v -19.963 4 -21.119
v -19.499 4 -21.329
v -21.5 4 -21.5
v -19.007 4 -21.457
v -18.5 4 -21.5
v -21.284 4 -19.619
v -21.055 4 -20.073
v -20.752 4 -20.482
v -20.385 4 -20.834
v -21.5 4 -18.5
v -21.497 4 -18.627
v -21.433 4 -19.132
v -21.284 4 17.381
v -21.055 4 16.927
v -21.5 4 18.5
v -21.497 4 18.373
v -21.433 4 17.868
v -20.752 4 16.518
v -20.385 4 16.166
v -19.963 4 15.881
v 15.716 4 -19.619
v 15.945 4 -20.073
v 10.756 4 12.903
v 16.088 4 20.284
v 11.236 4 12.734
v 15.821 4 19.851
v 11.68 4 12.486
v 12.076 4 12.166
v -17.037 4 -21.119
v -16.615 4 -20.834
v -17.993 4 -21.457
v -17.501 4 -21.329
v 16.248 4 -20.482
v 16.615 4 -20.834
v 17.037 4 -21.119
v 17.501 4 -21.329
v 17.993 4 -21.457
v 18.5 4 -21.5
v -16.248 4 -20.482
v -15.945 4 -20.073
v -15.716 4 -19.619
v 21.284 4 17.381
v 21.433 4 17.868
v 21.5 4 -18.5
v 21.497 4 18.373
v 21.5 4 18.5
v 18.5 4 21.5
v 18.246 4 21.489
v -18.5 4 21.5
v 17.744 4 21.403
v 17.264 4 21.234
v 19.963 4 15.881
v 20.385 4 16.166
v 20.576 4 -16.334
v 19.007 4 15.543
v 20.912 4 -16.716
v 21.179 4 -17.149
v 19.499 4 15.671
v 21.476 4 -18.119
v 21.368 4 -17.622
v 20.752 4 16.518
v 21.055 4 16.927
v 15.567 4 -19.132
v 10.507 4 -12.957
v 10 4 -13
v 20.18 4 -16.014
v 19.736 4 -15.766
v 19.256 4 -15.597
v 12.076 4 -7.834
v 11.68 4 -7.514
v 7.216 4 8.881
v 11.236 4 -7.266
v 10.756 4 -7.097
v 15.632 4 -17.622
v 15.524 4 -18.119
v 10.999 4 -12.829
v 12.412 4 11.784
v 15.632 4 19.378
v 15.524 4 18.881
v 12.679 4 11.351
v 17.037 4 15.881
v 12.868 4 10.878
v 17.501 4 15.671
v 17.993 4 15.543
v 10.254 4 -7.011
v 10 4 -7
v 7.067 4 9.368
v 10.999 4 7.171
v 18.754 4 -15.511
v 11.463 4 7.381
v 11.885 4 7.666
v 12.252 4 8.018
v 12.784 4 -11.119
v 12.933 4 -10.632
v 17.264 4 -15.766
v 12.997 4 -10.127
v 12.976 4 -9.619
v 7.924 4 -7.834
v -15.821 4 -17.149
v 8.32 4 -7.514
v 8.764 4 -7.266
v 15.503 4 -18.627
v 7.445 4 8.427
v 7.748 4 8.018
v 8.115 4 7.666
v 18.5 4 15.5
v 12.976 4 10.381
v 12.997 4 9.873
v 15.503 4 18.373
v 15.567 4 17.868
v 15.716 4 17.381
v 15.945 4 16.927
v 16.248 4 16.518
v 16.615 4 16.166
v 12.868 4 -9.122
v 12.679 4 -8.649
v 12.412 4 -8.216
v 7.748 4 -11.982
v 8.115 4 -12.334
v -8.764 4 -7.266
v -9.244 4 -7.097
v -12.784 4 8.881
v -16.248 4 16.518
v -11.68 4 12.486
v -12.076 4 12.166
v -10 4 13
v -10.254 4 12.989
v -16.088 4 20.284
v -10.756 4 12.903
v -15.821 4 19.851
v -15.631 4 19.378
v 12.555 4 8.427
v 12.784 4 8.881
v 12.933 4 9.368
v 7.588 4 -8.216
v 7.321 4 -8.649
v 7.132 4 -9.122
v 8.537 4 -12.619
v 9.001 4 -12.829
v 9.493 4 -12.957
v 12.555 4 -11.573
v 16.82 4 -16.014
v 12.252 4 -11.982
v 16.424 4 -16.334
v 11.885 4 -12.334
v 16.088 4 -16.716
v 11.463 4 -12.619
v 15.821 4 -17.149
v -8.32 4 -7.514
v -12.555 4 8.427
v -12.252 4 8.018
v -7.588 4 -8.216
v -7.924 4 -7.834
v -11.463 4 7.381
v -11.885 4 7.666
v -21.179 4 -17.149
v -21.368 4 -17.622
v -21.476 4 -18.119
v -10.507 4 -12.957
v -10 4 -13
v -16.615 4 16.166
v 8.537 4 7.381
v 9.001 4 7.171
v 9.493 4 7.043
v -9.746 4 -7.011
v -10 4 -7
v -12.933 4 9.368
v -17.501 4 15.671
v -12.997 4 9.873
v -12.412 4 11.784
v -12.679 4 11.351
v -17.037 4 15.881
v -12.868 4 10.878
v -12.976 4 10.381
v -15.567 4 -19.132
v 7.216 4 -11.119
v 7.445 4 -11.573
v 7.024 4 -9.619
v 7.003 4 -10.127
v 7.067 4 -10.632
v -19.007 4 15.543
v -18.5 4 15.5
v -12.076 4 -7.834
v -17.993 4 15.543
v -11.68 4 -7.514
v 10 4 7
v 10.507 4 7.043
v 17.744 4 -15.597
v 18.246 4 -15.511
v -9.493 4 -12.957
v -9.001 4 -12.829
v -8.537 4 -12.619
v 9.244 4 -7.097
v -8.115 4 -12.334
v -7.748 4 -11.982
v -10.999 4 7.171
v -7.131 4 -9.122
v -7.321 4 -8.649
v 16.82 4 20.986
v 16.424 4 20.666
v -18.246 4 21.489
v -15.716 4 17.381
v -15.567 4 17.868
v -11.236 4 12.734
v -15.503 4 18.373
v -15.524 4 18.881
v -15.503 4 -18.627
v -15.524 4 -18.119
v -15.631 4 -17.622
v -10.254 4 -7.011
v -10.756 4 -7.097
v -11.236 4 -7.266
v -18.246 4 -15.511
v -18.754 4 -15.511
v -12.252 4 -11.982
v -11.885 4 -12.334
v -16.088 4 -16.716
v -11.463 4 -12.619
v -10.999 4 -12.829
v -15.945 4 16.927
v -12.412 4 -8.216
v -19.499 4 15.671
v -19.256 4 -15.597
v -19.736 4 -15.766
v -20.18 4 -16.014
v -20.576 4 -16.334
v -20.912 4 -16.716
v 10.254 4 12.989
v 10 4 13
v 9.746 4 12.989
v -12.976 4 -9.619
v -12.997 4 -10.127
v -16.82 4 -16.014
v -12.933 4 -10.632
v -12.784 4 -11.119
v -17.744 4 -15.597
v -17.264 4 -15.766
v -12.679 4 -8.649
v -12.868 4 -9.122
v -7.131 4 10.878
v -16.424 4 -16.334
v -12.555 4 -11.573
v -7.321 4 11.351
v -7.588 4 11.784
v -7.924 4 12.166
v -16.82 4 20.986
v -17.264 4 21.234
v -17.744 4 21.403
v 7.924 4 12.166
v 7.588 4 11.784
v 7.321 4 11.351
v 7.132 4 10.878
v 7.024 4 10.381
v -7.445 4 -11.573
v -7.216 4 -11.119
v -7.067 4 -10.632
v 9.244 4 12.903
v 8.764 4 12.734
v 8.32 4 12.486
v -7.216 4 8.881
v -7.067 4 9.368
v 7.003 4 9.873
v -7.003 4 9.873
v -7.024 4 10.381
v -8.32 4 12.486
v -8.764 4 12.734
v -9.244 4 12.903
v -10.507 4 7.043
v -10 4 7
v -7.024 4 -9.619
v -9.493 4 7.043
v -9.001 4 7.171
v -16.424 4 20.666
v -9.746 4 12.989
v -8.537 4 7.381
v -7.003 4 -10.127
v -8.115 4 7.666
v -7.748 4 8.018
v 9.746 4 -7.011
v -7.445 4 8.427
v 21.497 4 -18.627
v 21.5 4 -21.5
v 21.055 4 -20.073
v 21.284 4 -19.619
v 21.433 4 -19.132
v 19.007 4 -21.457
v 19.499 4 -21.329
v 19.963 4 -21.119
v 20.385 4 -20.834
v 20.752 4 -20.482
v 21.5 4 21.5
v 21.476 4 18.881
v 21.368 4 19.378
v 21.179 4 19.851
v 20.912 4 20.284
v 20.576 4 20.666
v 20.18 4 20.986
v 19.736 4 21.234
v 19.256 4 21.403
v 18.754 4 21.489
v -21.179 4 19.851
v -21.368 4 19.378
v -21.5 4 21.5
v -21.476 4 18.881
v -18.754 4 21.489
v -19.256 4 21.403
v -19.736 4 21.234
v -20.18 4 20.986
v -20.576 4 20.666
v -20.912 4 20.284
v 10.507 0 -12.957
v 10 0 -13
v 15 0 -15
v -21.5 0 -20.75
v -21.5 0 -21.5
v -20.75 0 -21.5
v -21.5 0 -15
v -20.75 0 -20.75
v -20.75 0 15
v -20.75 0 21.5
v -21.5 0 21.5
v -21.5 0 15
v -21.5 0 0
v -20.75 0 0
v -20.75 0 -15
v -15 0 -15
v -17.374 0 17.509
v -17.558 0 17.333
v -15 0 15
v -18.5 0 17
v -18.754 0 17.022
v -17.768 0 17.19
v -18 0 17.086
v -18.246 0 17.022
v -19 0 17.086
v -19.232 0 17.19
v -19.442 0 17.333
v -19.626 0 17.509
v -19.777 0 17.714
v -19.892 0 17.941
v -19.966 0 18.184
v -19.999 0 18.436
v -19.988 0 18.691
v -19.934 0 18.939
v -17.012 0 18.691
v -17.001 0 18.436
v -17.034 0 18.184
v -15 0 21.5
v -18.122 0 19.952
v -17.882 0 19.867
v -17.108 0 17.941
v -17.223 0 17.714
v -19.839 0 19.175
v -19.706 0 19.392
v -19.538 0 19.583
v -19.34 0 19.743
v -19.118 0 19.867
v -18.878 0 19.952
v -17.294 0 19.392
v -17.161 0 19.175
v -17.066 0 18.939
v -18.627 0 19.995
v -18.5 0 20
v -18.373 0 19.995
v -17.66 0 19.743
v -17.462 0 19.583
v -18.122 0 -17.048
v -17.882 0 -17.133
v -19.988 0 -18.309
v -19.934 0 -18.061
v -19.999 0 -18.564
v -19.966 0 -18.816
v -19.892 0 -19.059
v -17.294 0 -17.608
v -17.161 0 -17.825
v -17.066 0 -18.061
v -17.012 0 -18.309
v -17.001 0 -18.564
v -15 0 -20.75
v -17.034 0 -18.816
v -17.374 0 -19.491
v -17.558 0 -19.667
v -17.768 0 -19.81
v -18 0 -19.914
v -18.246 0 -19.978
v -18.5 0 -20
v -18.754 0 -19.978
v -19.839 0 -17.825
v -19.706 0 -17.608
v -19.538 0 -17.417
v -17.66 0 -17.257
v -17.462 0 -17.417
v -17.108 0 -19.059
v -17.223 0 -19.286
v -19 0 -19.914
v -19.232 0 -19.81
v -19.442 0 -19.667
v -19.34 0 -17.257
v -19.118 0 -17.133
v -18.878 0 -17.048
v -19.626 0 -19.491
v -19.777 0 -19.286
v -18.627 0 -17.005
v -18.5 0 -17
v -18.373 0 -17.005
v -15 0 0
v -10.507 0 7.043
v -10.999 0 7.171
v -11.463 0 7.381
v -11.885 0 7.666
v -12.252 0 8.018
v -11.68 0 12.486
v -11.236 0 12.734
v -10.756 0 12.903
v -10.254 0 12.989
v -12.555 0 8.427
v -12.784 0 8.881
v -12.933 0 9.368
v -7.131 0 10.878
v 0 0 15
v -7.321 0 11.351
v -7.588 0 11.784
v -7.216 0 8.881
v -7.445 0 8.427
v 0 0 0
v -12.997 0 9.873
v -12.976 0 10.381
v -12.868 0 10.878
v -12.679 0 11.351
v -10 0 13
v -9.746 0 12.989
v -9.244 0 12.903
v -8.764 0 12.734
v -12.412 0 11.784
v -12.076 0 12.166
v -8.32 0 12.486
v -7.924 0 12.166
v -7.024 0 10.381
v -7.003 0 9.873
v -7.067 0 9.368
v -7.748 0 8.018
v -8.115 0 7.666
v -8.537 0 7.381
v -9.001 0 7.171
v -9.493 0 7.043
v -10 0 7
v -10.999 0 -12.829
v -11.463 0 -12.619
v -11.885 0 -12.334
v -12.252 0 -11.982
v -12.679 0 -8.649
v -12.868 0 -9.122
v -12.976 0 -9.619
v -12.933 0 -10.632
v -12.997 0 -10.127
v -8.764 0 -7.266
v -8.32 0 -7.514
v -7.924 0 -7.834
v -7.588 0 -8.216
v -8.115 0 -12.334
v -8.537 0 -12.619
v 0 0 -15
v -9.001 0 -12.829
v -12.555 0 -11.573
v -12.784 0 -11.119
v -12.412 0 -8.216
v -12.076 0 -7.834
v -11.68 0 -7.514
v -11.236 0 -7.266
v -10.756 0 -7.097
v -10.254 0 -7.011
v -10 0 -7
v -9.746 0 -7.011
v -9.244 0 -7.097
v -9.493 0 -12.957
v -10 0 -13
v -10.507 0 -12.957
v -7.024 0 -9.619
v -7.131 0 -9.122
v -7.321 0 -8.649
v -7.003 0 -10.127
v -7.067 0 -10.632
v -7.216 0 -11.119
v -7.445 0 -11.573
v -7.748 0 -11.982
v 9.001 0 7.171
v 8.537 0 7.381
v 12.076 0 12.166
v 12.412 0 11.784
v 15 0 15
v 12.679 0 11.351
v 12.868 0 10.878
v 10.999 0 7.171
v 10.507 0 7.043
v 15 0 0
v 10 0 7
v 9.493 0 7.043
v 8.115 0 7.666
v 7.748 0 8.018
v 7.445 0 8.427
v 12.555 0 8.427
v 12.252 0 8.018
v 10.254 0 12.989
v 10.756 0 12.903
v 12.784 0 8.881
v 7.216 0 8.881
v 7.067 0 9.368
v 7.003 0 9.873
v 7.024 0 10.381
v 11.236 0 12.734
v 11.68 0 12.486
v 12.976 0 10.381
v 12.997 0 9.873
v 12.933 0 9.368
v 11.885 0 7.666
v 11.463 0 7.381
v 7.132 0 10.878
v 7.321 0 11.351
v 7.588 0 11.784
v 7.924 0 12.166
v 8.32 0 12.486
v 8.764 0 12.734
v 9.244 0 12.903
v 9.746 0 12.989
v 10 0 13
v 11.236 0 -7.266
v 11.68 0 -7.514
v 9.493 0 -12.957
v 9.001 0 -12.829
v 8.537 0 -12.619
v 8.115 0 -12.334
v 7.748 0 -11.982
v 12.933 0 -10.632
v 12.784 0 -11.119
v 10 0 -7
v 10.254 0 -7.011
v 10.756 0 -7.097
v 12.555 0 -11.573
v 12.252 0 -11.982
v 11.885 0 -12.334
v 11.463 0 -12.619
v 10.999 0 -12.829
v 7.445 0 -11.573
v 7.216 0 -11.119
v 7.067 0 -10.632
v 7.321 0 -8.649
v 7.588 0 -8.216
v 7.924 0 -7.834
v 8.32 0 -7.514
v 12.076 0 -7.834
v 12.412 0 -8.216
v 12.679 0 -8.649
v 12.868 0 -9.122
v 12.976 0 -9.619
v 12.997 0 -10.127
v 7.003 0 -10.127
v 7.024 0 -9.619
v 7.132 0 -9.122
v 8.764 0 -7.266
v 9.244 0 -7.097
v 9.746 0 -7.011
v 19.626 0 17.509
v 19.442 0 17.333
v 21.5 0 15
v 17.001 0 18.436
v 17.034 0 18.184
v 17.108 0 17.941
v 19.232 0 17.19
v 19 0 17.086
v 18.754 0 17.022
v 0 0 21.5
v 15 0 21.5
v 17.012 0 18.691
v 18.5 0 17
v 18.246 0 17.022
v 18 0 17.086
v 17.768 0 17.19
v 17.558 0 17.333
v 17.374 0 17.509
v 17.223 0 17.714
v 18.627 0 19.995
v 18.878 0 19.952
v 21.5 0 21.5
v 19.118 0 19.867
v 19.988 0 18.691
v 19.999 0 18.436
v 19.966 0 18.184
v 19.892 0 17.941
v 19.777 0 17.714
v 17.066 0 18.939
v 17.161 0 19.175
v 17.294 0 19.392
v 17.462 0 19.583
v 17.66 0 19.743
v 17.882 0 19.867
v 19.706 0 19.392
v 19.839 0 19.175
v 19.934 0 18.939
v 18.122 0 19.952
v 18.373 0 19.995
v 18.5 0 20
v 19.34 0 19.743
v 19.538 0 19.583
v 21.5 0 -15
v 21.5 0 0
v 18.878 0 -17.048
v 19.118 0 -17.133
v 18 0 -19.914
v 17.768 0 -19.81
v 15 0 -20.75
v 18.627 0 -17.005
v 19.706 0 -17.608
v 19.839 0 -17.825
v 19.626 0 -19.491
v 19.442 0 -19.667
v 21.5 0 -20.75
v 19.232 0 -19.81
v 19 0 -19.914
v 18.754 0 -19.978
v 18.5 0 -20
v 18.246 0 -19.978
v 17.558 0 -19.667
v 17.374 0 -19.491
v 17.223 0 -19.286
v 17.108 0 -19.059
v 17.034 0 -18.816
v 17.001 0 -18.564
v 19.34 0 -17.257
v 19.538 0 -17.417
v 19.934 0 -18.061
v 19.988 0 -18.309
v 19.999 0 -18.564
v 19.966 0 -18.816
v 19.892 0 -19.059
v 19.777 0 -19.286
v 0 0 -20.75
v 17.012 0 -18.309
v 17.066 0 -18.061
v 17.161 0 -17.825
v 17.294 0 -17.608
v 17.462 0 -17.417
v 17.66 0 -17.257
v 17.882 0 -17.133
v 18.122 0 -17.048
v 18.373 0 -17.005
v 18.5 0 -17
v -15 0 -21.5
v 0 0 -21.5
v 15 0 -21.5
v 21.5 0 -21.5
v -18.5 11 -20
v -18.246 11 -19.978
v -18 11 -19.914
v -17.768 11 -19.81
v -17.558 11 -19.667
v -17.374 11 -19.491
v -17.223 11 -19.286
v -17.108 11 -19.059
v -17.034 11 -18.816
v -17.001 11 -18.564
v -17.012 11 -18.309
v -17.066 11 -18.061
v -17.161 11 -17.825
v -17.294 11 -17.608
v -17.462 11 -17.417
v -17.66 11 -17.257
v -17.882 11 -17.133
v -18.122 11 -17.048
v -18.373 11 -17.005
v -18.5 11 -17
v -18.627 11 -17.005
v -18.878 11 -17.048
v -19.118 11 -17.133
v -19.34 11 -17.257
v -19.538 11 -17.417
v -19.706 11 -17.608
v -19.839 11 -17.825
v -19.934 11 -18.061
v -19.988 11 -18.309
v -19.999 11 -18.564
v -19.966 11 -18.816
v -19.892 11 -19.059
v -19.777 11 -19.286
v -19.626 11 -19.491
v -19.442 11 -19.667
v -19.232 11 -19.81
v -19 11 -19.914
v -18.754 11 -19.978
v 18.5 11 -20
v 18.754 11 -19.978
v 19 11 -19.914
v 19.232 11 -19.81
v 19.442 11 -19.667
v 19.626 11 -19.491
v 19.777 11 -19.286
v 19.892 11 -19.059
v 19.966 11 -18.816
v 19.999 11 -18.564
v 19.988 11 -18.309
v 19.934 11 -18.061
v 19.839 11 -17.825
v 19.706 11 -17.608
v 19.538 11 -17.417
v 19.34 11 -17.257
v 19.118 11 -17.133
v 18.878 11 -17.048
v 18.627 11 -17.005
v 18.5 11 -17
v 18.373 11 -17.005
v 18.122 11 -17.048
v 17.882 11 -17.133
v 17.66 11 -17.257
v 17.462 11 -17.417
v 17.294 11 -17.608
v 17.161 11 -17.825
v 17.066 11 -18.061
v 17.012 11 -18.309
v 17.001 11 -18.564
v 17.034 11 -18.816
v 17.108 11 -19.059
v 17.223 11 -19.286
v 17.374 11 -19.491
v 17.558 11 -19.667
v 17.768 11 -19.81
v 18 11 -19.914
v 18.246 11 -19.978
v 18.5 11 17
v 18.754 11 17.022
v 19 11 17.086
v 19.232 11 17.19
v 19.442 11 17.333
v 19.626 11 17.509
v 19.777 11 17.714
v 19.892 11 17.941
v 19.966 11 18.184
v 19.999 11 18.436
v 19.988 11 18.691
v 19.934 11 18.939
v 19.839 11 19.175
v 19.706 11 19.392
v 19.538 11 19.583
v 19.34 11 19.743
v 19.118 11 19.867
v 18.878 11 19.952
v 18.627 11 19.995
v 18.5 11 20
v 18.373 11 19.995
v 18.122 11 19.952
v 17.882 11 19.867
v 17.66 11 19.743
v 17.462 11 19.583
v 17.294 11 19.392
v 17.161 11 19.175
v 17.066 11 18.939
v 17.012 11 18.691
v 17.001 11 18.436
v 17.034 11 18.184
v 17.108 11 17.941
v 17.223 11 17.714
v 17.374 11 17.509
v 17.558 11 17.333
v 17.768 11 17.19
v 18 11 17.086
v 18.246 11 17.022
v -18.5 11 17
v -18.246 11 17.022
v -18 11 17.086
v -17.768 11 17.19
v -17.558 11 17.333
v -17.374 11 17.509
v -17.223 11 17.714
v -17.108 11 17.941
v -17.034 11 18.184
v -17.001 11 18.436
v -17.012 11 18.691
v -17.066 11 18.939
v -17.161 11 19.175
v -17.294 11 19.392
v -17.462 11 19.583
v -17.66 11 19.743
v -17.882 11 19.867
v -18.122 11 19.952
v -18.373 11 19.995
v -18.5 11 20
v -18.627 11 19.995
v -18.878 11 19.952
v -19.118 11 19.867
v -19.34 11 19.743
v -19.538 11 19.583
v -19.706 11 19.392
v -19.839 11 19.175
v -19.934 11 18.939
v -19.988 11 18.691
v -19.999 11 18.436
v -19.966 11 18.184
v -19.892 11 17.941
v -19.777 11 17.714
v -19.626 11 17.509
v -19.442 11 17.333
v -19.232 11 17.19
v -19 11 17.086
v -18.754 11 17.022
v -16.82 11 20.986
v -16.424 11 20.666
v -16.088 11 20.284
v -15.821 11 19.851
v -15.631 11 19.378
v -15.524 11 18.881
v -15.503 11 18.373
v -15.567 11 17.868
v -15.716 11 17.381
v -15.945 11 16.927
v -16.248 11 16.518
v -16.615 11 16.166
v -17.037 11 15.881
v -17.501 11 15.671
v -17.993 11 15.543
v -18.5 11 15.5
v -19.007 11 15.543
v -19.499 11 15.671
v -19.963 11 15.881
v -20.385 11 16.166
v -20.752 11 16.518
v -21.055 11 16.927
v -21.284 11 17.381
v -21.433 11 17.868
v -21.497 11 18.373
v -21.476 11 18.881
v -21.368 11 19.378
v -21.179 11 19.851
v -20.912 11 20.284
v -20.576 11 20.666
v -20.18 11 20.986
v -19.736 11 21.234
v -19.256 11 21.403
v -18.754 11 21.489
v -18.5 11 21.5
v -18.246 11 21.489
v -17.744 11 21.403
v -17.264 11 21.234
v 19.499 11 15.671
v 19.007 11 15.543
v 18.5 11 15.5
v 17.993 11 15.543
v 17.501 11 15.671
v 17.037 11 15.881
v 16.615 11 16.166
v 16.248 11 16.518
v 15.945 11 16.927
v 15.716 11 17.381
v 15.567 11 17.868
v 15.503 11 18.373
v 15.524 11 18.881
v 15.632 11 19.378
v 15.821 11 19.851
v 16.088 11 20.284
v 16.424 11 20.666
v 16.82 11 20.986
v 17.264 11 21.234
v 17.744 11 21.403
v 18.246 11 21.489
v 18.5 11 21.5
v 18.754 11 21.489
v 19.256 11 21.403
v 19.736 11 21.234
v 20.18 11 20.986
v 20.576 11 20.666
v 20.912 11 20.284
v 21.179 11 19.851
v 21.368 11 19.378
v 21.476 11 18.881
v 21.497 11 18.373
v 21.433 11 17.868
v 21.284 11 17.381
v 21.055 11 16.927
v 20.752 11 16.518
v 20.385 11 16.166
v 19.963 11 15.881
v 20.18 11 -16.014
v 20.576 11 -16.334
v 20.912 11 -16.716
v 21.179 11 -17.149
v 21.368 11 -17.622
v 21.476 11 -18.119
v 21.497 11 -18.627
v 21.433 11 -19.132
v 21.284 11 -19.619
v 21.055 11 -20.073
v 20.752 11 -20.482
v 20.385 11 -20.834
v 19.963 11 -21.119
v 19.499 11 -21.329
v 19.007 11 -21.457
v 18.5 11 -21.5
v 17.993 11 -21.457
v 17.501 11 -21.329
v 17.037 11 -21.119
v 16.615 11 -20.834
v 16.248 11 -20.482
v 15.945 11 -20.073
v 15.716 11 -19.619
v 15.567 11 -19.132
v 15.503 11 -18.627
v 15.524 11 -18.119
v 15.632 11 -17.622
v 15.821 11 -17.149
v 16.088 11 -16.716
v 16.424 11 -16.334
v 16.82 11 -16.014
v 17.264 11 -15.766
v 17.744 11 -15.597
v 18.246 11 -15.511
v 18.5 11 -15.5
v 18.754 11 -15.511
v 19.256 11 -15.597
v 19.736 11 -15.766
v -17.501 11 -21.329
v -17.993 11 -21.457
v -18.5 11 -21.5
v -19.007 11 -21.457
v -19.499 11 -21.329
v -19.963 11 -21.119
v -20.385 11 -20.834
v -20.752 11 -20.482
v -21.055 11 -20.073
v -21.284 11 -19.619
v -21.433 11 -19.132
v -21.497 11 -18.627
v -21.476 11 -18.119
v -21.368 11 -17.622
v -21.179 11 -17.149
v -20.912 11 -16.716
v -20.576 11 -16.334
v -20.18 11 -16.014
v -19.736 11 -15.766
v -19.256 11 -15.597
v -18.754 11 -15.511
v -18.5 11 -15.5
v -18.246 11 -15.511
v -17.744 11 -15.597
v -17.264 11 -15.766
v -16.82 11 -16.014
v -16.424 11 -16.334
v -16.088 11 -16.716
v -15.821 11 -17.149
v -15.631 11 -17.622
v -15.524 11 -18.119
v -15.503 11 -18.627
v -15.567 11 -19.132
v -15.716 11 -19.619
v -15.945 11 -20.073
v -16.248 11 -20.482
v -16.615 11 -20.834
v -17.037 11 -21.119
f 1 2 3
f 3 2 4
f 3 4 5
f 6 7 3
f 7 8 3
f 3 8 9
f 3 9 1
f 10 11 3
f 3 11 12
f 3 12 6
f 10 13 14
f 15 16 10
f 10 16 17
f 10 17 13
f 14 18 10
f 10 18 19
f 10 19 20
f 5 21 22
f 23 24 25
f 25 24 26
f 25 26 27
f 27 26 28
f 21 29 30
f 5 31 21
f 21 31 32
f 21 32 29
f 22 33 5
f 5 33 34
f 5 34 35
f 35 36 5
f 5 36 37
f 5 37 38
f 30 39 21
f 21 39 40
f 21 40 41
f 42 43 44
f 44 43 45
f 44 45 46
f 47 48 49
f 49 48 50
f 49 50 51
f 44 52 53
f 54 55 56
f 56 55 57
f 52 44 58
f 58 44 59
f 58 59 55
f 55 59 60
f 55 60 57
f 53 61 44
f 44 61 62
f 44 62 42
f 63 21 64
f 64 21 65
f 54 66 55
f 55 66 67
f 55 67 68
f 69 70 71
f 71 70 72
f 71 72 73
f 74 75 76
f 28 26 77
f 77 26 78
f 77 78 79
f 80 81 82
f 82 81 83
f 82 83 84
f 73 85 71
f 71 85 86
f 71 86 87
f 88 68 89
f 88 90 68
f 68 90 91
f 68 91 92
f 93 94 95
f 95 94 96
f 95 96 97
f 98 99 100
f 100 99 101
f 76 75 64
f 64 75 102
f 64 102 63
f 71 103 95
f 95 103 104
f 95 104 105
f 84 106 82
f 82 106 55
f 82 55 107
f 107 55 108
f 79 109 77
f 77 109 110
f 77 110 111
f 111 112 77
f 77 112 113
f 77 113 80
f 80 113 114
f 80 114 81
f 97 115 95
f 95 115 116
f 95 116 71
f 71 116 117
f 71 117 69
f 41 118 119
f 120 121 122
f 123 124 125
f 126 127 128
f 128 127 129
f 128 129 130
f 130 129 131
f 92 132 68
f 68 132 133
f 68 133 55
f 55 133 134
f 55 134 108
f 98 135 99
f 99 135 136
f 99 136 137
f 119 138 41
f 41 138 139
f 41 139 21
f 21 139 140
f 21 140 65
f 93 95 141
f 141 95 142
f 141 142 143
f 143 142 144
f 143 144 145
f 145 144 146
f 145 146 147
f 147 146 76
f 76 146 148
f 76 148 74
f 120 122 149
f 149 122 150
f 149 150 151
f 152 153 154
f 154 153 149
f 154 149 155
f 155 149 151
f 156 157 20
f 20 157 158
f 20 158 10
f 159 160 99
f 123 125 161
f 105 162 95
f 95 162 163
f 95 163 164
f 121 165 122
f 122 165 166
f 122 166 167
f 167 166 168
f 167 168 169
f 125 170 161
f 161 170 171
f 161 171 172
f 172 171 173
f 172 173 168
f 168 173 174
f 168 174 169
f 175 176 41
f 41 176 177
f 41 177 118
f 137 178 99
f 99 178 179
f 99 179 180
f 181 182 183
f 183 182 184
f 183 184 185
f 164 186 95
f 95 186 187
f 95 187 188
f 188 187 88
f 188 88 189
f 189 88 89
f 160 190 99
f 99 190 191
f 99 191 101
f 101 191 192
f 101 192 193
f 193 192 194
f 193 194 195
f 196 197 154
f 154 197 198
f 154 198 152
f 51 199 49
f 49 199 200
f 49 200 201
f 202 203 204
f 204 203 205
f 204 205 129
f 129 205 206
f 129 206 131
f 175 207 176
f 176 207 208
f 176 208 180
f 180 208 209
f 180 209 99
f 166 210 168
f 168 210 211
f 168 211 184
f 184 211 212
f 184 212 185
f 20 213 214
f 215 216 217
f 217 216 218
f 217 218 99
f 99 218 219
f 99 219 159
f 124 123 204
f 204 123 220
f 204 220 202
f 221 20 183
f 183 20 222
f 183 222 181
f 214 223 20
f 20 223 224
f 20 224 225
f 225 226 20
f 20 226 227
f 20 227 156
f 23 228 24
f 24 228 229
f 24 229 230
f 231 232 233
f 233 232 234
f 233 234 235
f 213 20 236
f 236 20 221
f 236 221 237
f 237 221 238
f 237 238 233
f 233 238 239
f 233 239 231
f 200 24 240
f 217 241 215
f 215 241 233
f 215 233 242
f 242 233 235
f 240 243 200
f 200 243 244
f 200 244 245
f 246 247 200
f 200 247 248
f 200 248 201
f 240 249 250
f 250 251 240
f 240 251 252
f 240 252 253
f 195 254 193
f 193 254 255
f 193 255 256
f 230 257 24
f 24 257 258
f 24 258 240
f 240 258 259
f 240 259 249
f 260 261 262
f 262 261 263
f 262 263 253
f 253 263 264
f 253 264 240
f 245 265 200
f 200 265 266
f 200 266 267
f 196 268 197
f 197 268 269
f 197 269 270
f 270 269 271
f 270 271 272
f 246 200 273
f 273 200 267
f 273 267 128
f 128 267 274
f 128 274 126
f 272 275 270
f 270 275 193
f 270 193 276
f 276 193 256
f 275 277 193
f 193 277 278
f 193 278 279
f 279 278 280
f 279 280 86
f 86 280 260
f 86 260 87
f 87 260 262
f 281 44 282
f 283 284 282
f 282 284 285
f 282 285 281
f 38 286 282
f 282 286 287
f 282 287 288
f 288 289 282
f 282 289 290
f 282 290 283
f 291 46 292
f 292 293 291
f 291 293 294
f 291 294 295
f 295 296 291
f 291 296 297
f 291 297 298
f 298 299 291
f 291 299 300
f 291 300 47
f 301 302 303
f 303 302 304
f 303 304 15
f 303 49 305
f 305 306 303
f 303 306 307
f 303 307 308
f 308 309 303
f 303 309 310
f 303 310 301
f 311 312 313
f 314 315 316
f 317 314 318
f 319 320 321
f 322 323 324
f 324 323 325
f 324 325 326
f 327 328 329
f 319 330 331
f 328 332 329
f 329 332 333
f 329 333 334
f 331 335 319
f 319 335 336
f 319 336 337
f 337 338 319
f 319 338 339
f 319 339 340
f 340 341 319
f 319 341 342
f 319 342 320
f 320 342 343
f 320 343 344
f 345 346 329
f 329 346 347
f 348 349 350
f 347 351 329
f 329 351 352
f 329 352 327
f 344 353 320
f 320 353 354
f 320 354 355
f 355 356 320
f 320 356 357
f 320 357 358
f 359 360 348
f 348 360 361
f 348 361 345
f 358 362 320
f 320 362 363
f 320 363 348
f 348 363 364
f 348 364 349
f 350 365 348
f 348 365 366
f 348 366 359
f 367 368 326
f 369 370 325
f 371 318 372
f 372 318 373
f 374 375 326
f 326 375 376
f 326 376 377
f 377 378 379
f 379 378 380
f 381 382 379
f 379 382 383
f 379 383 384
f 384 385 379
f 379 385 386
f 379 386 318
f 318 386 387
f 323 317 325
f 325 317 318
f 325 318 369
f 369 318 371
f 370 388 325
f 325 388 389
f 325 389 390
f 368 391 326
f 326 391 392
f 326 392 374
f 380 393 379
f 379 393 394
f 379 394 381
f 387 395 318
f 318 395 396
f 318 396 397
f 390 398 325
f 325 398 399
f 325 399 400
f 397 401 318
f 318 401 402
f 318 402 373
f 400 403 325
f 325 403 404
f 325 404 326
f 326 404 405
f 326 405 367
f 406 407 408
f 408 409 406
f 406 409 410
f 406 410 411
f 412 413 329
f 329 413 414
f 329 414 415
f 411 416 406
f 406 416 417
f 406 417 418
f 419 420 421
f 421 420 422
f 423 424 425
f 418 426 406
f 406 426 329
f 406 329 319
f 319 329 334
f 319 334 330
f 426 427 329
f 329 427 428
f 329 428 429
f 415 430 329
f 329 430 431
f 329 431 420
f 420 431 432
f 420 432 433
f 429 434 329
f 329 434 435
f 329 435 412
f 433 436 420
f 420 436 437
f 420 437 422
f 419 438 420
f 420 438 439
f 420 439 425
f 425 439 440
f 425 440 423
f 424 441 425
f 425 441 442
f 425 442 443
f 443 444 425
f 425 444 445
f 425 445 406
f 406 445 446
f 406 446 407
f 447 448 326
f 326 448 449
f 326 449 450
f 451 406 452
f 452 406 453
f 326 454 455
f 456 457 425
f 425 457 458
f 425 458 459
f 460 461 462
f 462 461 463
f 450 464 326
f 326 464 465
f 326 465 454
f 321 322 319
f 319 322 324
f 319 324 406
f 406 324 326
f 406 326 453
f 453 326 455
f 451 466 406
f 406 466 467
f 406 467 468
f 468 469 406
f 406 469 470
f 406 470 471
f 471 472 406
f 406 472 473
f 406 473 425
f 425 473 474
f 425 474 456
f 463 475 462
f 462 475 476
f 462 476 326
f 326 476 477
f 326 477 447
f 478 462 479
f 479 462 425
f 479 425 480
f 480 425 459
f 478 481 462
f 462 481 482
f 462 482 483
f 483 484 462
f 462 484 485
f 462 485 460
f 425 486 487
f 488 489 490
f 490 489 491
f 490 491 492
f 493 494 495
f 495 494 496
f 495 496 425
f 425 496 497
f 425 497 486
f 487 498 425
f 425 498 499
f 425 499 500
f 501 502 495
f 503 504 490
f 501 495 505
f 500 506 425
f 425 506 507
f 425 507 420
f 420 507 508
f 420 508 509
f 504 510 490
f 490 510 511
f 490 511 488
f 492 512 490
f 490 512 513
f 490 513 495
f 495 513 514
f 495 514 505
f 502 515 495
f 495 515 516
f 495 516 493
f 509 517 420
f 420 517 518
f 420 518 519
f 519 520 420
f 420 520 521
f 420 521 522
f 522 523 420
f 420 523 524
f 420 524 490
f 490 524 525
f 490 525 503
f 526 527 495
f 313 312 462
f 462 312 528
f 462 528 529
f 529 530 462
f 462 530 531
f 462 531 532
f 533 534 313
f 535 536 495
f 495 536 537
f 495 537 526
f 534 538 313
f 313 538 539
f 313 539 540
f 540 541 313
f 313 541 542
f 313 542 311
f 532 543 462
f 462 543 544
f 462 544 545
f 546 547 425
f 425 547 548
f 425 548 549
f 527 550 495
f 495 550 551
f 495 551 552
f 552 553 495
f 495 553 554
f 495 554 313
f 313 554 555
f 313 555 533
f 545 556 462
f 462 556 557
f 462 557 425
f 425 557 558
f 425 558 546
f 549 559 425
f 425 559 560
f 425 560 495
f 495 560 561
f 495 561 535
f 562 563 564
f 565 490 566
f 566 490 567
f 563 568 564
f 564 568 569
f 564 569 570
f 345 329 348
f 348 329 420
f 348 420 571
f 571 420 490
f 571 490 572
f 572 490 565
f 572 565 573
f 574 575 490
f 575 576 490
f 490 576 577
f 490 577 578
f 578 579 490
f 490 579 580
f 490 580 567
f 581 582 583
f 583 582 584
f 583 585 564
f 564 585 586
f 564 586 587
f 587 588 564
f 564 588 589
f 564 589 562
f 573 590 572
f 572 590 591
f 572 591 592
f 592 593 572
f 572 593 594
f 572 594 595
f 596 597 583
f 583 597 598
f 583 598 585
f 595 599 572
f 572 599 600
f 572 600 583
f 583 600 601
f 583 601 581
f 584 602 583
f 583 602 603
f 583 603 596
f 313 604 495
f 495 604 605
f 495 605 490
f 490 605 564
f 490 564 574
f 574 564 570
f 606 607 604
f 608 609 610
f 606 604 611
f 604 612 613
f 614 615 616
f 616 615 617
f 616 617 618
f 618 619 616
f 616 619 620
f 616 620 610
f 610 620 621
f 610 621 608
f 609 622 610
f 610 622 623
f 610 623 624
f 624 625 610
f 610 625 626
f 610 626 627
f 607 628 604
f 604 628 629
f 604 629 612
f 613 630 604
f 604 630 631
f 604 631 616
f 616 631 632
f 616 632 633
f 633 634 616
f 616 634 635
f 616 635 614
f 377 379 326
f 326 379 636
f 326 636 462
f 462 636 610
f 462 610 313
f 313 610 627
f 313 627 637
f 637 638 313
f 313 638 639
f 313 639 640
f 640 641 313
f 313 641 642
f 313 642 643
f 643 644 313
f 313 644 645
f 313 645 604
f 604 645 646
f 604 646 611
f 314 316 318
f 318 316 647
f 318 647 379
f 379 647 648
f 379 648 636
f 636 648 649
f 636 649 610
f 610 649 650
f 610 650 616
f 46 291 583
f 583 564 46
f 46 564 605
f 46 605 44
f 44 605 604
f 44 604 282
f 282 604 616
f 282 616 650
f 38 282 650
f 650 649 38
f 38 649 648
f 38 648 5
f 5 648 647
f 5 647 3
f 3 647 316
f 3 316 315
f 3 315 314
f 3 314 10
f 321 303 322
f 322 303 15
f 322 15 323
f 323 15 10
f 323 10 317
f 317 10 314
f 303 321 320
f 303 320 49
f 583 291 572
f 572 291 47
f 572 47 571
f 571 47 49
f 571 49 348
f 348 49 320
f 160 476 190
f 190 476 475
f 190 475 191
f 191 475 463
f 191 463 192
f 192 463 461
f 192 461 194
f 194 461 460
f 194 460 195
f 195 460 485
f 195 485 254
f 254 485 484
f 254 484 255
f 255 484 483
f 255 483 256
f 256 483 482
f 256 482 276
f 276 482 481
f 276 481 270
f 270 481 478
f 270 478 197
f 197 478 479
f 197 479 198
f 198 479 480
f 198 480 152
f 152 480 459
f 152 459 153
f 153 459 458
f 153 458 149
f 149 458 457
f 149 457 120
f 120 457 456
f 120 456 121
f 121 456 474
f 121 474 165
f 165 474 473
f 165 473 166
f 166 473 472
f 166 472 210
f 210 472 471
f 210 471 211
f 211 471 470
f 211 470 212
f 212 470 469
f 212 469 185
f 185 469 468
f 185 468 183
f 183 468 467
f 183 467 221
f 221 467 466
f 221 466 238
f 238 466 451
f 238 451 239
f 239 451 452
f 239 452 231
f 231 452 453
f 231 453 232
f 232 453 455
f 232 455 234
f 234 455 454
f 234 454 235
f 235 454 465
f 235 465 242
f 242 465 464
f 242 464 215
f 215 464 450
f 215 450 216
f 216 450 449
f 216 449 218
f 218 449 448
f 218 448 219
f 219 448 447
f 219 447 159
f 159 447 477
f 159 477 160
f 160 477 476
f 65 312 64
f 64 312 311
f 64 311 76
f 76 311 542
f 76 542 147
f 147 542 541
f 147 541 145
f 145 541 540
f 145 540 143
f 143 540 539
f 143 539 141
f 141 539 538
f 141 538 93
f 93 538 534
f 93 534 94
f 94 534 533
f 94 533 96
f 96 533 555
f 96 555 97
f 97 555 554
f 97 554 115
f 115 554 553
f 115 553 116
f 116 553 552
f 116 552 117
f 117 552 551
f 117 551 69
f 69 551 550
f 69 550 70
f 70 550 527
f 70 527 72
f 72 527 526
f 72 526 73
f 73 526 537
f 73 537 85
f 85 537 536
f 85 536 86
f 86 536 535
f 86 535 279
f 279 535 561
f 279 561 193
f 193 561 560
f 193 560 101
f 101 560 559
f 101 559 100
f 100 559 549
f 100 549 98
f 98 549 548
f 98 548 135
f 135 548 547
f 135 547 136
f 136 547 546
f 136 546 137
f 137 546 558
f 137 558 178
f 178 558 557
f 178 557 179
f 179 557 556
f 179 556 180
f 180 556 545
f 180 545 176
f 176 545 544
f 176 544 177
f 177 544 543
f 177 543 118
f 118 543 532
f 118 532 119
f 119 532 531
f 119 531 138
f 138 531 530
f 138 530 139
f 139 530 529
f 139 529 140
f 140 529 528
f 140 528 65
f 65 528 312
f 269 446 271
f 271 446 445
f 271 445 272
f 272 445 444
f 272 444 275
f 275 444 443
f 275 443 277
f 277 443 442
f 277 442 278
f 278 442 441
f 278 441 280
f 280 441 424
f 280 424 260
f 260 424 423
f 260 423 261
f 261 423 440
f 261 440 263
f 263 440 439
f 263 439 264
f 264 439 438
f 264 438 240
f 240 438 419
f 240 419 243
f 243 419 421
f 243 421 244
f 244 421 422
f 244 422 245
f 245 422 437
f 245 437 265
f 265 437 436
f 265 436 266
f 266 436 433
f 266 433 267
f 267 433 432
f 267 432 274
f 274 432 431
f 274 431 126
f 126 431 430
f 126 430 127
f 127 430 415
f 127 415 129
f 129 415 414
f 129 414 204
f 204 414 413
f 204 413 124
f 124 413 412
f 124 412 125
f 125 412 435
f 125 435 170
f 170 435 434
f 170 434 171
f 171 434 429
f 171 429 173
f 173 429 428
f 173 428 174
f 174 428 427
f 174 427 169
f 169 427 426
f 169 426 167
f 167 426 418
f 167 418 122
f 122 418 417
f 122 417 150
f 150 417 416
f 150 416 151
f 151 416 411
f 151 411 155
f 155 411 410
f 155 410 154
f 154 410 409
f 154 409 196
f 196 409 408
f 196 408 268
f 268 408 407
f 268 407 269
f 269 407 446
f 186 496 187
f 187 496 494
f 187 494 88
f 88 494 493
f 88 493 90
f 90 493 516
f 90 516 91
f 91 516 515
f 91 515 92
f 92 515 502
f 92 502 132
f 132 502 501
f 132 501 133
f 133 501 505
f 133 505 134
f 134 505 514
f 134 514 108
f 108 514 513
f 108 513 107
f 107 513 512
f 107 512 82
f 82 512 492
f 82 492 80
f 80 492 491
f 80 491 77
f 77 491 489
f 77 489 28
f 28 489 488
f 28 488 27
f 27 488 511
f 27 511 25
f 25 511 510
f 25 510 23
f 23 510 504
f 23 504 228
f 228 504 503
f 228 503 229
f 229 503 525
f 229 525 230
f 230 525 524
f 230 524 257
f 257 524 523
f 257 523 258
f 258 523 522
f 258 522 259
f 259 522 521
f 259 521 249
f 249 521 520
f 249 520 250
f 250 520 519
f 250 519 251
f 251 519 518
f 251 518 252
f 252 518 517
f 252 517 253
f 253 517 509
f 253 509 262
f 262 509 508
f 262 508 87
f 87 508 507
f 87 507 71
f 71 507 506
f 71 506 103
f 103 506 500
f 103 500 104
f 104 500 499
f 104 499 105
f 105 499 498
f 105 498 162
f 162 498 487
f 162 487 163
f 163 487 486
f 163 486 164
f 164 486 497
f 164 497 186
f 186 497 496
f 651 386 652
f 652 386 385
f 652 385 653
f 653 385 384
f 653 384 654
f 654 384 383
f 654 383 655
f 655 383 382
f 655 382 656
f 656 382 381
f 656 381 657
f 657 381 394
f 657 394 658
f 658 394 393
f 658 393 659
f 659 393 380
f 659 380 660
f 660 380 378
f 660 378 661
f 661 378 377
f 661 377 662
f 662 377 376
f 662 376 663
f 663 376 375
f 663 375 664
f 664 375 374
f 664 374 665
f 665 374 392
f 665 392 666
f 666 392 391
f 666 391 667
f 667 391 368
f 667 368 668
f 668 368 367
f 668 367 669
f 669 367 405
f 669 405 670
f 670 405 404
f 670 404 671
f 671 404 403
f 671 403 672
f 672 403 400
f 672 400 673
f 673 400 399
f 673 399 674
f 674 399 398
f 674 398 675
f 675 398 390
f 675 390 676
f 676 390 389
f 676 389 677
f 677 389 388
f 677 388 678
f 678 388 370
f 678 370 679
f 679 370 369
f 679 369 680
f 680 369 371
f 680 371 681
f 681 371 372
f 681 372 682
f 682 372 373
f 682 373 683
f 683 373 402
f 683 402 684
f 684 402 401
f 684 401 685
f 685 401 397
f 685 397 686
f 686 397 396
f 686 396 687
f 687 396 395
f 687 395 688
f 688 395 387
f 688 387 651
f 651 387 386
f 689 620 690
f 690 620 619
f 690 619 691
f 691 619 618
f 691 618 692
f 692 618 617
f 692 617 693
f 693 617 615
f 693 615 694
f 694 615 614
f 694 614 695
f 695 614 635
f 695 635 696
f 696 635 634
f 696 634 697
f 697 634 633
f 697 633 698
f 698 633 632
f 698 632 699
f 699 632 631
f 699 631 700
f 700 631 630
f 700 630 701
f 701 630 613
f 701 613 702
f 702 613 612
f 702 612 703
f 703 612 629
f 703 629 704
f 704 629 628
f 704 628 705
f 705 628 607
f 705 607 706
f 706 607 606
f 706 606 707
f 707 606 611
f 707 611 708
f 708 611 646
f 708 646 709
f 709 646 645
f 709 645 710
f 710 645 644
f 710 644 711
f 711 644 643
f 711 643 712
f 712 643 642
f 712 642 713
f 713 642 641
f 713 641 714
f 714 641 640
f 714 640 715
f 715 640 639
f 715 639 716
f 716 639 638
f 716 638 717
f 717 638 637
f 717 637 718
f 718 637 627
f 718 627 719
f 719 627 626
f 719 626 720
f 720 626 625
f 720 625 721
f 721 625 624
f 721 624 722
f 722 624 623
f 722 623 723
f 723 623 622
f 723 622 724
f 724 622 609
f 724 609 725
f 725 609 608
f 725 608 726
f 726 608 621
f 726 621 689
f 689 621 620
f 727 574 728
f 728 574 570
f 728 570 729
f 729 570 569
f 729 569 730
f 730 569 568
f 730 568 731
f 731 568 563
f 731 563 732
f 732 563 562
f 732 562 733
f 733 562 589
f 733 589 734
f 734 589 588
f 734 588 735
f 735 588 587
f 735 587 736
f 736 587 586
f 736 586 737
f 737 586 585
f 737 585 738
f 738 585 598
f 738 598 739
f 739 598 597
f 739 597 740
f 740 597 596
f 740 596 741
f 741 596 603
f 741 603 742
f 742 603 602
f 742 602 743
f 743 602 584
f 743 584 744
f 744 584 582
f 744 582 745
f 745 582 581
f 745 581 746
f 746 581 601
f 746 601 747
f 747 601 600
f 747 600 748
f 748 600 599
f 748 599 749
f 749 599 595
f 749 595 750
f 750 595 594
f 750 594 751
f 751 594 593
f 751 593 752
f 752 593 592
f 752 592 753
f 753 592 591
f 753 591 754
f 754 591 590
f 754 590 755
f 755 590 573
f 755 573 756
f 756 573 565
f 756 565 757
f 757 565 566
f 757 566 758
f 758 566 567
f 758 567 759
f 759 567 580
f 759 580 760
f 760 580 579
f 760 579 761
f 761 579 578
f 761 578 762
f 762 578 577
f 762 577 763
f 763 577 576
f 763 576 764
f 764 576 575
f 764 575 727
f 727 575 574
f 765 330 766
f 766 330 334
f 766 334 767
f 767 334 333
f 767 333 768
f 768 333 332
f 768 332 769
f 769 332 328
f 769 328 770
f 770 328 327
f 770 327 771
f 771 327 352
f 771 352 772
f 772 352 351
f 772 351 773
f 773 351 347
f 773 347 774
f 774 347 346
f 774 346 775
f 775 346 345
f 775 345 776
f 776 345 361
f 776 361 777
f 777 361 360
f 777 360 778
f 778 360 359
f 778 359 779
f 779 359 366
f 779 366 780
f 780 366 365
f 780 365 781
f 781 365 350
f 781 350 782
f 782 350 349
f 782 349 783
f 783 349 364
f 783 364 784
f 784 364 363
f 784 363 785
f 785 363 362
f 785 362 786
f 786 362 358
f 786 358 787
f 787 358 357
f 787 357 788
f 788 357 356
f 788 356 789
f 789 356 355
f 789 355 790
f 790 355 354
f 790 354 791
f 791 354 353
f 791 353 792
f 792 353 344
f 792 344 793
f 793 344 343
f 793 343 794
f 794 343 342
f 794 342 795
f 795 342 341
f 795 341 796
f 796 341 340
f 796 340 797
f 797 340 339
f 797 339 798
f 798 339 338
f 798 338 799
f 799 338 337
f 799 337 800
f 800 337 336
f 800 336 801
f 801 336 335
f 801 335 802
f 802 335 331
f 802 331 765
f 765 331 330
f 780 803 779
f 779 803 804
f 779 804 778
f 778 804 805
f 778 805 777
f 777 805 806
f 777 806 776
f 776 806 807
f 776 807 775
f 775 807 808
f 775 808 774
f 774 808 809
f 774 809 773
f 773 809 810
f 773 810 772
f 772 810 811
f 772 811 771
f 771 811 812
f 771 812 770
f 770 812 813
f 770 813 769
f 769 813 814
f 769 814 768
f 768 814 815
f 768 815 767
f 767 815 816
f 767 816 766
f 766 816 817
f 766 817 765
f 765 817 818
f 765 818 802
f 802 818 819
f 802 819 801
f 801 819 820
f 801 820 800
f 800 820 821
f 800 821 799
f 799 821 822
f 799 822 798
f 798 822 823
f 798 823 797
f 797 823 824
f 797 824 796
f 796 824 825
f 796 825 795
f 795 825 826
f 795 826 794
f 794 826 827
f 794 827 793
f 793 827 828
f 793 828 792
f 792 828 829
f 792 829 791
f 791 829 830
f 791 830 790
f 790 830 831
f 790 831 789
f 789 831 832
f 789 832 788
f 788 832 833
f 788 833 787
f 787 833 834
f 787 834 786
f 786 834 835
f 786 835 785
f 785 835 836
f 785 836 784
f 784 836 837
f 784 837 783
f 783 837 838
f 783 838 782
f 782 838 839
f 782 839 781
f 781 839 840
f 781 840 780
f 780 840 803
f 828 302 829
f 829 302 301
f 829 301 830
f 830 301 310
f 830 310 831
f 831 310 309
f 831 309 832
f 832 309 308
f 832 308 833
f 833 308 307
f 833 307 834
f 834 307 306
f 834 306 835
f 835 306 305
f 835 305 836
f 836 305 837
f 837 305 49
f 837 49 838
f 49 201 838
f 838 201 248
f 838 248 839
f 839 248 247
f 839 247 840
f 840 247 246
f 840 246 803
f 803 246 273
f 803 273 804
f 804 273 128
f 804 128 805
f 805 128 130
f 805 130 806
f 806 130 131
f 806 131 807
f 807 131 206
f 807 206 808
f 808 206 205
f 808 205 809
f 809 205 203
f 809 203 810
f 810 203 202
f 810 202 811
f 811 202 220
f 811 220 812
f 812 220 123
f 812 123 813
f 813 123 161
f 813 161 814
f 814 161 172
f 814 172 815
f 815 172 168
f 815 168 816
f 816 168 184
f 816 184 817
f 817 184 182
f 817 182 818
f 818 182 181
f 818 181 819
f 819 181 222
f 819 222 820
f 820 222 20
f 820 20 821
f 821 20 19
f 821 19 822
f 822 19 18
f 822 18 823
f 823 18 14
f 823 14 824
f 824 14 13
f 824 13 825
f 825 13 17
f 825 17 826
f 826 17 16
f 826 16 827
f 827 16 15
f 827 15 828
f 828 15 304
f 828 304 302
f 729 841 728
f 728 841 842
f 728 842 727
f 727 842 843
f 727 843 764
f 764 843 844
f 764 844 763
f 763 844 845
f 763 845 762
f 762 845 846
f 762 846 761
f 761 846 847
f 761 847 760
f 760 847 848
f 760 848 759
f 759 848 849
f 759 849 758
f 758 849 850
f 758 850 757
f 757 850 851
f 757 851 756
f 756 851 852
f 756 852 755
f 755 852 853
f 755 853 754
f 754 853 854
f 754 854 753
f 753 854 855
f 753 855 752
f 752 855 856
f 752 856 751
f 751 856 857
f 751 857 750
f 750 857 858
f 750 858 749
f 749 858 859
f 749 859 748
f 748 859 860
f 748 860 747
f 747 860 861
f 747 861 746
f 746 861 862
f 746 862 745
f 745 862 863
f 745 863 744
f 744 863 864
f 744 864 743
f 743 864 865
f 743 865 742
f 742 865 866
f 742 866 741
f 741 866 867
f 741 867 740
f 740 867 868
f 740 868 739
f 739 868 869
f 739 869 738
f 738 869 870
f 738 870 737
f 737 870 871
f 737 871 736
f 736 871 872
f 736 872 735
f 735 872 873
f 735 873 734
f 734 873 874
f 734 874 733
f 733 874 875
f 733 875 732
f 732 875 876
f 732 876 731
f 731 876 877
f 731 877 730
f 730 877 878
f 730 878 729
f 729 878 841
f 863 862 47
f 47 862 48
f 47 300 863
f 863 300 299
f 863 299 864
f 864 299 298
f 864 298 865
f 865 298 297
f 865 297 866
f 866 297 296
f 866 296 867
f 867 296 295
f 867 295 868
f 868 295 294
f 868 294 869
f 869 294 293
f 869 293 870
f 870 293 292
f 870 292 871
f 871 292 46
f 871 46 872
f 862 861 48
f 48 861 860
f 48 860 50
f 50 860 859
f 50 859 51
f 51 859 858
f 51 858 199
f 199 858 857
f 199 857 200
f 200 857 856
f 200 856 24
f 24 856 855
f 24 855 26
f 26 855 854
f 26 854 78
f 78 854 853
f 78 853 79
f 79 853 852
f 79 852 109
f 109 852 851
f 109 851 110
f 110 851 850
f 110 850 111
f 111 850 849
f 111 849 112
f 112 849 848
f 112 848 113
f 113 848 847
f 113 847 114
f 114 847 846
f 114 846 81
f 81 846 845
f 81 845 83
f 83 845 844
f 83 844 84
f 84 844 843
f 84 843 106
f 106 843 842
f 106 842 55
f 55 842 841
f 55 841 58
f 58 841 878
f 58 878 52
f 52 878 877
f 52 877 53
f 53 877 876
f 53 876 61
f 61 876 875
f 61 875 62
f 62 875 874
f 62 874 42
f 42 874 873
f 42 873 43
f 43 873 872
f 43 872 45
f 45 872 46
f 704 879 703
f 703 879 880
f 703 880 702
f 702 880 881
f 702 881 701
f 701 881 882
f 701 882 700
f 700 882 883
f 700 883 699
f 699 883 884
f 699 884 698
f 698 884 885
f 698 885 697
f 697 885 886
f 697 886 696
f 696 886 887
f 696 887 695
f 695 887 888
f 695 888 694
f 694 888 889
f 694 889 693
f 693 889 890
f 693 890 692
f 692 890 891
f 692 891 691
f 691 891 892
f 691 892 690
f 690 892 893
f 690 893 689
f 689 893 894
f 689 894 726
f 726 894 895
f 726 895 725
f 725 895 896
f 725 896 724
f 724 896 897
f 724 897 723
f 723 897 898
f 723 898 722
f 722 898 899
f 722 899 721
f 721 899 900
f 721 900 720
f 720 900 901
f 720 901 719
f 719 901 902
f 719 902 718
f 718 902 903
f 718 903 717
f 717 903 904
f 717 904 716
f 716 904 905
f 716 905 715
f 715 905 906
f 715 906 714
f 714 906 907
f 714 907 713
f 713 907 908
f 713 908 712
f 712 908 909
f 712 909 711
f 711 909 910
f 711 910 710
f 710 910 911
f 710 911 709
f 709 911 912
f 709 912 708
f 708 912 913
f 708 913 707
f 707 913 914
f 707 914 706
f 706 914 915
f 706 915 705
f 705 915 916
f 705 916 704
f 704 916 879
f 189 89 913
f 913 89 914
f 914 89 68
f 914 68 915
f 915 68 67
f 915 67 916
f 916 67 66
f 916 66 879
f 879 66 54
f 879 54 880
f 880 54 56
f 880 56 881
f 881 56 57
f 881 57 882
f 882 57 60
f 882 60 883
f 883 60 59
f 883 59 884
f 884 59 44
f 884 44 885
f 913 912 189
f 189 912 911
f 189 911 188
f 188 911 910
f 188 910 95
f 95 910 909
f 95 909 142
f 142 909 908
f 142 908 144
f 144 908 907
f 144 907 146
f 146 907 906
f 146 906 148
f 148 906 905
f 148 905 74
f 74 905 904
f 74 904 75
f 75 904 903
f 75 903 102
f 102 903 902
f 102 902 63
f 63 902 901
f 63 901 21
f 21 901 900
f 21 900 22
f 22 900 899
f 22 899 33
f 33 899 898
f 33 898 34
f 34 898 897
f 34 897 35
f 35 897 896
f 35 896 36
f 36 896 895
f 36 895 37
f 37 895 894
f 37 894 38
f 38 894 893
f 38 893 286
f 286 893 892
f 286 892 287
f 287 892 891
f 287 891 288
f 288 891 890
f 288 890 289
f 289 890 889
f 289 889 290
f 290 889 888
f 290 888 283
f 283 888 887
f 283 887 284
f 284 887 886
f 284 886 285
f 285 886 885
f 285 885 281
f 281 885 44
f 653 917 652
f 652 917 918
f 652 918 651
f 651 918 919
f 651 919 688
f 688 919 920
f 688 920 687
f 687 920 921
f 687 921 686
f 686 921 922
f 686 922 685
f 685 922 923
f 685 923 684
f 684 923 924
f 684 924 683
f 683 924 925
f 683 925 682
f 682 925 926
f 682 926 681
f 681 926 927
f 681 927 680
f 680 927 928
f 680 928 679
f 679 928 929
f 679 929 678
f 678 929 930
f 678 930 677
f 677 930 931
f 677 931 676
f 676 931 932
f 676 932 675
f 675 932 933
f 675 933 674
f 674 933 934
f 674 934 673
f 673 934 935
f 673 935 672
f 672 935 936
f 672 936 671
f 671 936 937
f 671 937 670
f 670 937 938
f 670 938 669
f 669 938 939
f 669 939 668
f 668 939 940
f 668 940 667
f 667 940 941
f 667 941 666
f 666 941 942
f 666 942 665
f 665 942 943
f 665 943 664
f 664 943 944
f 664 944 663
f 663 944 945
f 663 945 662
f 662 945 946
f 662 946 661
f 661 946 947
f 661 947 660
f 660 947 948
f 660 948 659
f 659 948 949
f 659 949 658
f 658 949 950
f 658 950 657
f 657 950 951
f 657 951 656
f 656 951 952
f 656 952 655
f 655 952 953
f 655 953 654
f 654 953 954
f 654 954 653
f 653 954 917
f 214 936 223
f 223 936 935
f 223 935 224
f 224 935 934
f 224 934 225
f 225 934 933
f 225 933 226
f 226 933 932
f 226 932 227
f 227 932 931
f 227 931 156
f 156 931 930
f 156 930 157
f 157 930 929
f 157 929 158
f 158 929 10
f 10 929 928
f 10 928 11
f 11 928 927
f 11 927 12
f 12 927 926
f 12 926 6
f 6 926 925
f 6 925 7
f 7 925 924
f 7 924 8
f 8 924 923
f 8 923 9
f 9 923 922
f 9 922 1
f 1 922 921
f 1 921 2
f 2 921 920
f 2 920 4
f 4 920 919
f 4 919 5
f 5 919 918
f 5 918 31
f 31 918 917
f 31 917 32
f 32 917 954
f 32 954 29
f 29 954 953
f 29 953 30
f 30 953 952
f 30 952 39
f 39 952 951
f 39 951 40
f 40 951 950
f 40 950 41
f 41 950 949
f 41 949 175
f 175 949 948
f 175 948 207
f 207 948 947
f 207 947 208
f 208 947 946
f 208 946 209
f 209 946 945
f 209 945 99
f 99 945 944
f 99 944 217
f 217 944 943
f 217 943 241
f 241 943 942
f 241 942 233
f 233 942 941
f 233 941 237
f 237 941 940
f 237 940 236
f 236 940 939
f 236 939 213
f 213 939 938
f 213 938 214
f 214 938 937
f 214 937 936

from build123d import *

# Parameters (mm, degrees)
SKETCH_1_W      = 43
SKETCH_1_H      = 43
SKETCH_1_R      = 3
SKETCH_1_R_2    = 1.5
EXTRUDE_1_DEPTH = 4
SKETCH_2_R      = 3
SKETCH_2_R_2    = 1.5
EXTRUDE_2_DEPTH = 7


with BuildPart() as part:
    # 草图1 → 凸台-拉伸1 (new body)
    with BuildSketch(Plane(origin=(0, 0, 0), x_dir=(1, 0, 0), z_dir=(0, 1, 0))):
        Rectangle(SKETCH_1_W, SKETCH_1_H)
        with Locations(Location((-10, 10, 0), (0, 0, 270))):
            Circle(SKETCH_1_R, mode=Mode.SUBTRACT)
        with Locations(Location((10, 10, 0), (0, 0, 270))):
            Circle(SKETCH_1_R, mode=Mode.SUBTRACT)
        with Locations(Location((-10, -10, 0), (0, 0, 270))):
            Circle(SKETCH_1_R, mode=Mode.SUBTRACT)
        with Locations(Location((10, -10, 0), (0, 0, 270))):
            Circle(SKETCH_1_R, mode=Mode.SUBTRACT)
        with Locations(Location((-18.5, 18.5, 0), (0, 0, 270))):
            Circle(SKETCH_1_R_2, mode=Mode.SUBTRACT)
        with Locations(Location((18.5, 18.5, 0), (0, 0, 270))):
            Circle(SKETCH_1_R_2, mode=Mode.SUBTRACT)
        with Locations(Location((18.5, -18.5, 0), (0, 0, 270))):
            Circle(SKETCH_1_R_2, mode=Mode.SUBTRACT)
        with Locations(Location((-18.5, -18.5, 0), (0, 0, 270))):
            Circle(SKETCH_1_R_2, mode=Mode.SUBTRACT)
    extrude(amount=EXTRUDE_1_DEPTH)

    # 草图2 → 凸台-拉伸2 (add)
    # profile 1 of 4: a face of its own
    with BuildSketch(Plane(origin=(0, 4, 0), x_dir=(1, 0, 0), z_dir=(0, 1, 0))):
        with Locations(Location((-18.5, -18.5, 0), (0, 0, 270))):
            Circle(SKETCH_2_R)
        with Locations(Location((-18.5, -18.5, 0), (0, 0, 270))):
            Circle(SKETCH_2_R_2, mode=Mode.SUBTRACT)
    # profile 2 of 4: a face of its own
    with BuildSketch(Plane(origin=(0, 4, 0), x_dir=(1, 0, 0), z_dir=(0, 1, 0))):
        with Locations(Location((18.5, -18.5, 0), (0, 0, 270))):
            Circle(SKETCH_2_R)
        with Locations(Location((18.5, -18.5, 0), (0, 0, 270))):
            Circle(SKETCH_2_R_2, mode=Mode.SUBTRACT)
    # profile 3 of 4: a face of its own
    with BuildSketch(Plane(origin=(0, 4, 0), x_dir=(1, 0, 0), z_dir=(0, 1, 0))):
        with Locations(Location((18.5, 18.5, 0), (0, 0, 90))):
            Circle(SKETCH_2_R)
        with Locations(Location((18.5, 18.5, 0), (0, 0, 270))):
            Circle(SKETCH_2_R_2, mode=Mode.SUBTRACT)
    # profile 4 of 4: a face of its own
    with BuildSketch(Plane(origin=(0, 4, 0), x_dir=(1, 0, 0), z_dir=(0, 1, 0))):
        with Locations(Location((-18.5, 18.5, 0), (0, 0, 90))):
            Circle(SKETCH_2_R)
        with Locations(Location((-18.5, 18.5, 0), (0, 0, 270))):
            Circle(SKETCH_2_R_2, mode=Mode.SUBTRACT)
    extrude(amount=EXTRUDE_2_DEPTH)


solid = part.part
